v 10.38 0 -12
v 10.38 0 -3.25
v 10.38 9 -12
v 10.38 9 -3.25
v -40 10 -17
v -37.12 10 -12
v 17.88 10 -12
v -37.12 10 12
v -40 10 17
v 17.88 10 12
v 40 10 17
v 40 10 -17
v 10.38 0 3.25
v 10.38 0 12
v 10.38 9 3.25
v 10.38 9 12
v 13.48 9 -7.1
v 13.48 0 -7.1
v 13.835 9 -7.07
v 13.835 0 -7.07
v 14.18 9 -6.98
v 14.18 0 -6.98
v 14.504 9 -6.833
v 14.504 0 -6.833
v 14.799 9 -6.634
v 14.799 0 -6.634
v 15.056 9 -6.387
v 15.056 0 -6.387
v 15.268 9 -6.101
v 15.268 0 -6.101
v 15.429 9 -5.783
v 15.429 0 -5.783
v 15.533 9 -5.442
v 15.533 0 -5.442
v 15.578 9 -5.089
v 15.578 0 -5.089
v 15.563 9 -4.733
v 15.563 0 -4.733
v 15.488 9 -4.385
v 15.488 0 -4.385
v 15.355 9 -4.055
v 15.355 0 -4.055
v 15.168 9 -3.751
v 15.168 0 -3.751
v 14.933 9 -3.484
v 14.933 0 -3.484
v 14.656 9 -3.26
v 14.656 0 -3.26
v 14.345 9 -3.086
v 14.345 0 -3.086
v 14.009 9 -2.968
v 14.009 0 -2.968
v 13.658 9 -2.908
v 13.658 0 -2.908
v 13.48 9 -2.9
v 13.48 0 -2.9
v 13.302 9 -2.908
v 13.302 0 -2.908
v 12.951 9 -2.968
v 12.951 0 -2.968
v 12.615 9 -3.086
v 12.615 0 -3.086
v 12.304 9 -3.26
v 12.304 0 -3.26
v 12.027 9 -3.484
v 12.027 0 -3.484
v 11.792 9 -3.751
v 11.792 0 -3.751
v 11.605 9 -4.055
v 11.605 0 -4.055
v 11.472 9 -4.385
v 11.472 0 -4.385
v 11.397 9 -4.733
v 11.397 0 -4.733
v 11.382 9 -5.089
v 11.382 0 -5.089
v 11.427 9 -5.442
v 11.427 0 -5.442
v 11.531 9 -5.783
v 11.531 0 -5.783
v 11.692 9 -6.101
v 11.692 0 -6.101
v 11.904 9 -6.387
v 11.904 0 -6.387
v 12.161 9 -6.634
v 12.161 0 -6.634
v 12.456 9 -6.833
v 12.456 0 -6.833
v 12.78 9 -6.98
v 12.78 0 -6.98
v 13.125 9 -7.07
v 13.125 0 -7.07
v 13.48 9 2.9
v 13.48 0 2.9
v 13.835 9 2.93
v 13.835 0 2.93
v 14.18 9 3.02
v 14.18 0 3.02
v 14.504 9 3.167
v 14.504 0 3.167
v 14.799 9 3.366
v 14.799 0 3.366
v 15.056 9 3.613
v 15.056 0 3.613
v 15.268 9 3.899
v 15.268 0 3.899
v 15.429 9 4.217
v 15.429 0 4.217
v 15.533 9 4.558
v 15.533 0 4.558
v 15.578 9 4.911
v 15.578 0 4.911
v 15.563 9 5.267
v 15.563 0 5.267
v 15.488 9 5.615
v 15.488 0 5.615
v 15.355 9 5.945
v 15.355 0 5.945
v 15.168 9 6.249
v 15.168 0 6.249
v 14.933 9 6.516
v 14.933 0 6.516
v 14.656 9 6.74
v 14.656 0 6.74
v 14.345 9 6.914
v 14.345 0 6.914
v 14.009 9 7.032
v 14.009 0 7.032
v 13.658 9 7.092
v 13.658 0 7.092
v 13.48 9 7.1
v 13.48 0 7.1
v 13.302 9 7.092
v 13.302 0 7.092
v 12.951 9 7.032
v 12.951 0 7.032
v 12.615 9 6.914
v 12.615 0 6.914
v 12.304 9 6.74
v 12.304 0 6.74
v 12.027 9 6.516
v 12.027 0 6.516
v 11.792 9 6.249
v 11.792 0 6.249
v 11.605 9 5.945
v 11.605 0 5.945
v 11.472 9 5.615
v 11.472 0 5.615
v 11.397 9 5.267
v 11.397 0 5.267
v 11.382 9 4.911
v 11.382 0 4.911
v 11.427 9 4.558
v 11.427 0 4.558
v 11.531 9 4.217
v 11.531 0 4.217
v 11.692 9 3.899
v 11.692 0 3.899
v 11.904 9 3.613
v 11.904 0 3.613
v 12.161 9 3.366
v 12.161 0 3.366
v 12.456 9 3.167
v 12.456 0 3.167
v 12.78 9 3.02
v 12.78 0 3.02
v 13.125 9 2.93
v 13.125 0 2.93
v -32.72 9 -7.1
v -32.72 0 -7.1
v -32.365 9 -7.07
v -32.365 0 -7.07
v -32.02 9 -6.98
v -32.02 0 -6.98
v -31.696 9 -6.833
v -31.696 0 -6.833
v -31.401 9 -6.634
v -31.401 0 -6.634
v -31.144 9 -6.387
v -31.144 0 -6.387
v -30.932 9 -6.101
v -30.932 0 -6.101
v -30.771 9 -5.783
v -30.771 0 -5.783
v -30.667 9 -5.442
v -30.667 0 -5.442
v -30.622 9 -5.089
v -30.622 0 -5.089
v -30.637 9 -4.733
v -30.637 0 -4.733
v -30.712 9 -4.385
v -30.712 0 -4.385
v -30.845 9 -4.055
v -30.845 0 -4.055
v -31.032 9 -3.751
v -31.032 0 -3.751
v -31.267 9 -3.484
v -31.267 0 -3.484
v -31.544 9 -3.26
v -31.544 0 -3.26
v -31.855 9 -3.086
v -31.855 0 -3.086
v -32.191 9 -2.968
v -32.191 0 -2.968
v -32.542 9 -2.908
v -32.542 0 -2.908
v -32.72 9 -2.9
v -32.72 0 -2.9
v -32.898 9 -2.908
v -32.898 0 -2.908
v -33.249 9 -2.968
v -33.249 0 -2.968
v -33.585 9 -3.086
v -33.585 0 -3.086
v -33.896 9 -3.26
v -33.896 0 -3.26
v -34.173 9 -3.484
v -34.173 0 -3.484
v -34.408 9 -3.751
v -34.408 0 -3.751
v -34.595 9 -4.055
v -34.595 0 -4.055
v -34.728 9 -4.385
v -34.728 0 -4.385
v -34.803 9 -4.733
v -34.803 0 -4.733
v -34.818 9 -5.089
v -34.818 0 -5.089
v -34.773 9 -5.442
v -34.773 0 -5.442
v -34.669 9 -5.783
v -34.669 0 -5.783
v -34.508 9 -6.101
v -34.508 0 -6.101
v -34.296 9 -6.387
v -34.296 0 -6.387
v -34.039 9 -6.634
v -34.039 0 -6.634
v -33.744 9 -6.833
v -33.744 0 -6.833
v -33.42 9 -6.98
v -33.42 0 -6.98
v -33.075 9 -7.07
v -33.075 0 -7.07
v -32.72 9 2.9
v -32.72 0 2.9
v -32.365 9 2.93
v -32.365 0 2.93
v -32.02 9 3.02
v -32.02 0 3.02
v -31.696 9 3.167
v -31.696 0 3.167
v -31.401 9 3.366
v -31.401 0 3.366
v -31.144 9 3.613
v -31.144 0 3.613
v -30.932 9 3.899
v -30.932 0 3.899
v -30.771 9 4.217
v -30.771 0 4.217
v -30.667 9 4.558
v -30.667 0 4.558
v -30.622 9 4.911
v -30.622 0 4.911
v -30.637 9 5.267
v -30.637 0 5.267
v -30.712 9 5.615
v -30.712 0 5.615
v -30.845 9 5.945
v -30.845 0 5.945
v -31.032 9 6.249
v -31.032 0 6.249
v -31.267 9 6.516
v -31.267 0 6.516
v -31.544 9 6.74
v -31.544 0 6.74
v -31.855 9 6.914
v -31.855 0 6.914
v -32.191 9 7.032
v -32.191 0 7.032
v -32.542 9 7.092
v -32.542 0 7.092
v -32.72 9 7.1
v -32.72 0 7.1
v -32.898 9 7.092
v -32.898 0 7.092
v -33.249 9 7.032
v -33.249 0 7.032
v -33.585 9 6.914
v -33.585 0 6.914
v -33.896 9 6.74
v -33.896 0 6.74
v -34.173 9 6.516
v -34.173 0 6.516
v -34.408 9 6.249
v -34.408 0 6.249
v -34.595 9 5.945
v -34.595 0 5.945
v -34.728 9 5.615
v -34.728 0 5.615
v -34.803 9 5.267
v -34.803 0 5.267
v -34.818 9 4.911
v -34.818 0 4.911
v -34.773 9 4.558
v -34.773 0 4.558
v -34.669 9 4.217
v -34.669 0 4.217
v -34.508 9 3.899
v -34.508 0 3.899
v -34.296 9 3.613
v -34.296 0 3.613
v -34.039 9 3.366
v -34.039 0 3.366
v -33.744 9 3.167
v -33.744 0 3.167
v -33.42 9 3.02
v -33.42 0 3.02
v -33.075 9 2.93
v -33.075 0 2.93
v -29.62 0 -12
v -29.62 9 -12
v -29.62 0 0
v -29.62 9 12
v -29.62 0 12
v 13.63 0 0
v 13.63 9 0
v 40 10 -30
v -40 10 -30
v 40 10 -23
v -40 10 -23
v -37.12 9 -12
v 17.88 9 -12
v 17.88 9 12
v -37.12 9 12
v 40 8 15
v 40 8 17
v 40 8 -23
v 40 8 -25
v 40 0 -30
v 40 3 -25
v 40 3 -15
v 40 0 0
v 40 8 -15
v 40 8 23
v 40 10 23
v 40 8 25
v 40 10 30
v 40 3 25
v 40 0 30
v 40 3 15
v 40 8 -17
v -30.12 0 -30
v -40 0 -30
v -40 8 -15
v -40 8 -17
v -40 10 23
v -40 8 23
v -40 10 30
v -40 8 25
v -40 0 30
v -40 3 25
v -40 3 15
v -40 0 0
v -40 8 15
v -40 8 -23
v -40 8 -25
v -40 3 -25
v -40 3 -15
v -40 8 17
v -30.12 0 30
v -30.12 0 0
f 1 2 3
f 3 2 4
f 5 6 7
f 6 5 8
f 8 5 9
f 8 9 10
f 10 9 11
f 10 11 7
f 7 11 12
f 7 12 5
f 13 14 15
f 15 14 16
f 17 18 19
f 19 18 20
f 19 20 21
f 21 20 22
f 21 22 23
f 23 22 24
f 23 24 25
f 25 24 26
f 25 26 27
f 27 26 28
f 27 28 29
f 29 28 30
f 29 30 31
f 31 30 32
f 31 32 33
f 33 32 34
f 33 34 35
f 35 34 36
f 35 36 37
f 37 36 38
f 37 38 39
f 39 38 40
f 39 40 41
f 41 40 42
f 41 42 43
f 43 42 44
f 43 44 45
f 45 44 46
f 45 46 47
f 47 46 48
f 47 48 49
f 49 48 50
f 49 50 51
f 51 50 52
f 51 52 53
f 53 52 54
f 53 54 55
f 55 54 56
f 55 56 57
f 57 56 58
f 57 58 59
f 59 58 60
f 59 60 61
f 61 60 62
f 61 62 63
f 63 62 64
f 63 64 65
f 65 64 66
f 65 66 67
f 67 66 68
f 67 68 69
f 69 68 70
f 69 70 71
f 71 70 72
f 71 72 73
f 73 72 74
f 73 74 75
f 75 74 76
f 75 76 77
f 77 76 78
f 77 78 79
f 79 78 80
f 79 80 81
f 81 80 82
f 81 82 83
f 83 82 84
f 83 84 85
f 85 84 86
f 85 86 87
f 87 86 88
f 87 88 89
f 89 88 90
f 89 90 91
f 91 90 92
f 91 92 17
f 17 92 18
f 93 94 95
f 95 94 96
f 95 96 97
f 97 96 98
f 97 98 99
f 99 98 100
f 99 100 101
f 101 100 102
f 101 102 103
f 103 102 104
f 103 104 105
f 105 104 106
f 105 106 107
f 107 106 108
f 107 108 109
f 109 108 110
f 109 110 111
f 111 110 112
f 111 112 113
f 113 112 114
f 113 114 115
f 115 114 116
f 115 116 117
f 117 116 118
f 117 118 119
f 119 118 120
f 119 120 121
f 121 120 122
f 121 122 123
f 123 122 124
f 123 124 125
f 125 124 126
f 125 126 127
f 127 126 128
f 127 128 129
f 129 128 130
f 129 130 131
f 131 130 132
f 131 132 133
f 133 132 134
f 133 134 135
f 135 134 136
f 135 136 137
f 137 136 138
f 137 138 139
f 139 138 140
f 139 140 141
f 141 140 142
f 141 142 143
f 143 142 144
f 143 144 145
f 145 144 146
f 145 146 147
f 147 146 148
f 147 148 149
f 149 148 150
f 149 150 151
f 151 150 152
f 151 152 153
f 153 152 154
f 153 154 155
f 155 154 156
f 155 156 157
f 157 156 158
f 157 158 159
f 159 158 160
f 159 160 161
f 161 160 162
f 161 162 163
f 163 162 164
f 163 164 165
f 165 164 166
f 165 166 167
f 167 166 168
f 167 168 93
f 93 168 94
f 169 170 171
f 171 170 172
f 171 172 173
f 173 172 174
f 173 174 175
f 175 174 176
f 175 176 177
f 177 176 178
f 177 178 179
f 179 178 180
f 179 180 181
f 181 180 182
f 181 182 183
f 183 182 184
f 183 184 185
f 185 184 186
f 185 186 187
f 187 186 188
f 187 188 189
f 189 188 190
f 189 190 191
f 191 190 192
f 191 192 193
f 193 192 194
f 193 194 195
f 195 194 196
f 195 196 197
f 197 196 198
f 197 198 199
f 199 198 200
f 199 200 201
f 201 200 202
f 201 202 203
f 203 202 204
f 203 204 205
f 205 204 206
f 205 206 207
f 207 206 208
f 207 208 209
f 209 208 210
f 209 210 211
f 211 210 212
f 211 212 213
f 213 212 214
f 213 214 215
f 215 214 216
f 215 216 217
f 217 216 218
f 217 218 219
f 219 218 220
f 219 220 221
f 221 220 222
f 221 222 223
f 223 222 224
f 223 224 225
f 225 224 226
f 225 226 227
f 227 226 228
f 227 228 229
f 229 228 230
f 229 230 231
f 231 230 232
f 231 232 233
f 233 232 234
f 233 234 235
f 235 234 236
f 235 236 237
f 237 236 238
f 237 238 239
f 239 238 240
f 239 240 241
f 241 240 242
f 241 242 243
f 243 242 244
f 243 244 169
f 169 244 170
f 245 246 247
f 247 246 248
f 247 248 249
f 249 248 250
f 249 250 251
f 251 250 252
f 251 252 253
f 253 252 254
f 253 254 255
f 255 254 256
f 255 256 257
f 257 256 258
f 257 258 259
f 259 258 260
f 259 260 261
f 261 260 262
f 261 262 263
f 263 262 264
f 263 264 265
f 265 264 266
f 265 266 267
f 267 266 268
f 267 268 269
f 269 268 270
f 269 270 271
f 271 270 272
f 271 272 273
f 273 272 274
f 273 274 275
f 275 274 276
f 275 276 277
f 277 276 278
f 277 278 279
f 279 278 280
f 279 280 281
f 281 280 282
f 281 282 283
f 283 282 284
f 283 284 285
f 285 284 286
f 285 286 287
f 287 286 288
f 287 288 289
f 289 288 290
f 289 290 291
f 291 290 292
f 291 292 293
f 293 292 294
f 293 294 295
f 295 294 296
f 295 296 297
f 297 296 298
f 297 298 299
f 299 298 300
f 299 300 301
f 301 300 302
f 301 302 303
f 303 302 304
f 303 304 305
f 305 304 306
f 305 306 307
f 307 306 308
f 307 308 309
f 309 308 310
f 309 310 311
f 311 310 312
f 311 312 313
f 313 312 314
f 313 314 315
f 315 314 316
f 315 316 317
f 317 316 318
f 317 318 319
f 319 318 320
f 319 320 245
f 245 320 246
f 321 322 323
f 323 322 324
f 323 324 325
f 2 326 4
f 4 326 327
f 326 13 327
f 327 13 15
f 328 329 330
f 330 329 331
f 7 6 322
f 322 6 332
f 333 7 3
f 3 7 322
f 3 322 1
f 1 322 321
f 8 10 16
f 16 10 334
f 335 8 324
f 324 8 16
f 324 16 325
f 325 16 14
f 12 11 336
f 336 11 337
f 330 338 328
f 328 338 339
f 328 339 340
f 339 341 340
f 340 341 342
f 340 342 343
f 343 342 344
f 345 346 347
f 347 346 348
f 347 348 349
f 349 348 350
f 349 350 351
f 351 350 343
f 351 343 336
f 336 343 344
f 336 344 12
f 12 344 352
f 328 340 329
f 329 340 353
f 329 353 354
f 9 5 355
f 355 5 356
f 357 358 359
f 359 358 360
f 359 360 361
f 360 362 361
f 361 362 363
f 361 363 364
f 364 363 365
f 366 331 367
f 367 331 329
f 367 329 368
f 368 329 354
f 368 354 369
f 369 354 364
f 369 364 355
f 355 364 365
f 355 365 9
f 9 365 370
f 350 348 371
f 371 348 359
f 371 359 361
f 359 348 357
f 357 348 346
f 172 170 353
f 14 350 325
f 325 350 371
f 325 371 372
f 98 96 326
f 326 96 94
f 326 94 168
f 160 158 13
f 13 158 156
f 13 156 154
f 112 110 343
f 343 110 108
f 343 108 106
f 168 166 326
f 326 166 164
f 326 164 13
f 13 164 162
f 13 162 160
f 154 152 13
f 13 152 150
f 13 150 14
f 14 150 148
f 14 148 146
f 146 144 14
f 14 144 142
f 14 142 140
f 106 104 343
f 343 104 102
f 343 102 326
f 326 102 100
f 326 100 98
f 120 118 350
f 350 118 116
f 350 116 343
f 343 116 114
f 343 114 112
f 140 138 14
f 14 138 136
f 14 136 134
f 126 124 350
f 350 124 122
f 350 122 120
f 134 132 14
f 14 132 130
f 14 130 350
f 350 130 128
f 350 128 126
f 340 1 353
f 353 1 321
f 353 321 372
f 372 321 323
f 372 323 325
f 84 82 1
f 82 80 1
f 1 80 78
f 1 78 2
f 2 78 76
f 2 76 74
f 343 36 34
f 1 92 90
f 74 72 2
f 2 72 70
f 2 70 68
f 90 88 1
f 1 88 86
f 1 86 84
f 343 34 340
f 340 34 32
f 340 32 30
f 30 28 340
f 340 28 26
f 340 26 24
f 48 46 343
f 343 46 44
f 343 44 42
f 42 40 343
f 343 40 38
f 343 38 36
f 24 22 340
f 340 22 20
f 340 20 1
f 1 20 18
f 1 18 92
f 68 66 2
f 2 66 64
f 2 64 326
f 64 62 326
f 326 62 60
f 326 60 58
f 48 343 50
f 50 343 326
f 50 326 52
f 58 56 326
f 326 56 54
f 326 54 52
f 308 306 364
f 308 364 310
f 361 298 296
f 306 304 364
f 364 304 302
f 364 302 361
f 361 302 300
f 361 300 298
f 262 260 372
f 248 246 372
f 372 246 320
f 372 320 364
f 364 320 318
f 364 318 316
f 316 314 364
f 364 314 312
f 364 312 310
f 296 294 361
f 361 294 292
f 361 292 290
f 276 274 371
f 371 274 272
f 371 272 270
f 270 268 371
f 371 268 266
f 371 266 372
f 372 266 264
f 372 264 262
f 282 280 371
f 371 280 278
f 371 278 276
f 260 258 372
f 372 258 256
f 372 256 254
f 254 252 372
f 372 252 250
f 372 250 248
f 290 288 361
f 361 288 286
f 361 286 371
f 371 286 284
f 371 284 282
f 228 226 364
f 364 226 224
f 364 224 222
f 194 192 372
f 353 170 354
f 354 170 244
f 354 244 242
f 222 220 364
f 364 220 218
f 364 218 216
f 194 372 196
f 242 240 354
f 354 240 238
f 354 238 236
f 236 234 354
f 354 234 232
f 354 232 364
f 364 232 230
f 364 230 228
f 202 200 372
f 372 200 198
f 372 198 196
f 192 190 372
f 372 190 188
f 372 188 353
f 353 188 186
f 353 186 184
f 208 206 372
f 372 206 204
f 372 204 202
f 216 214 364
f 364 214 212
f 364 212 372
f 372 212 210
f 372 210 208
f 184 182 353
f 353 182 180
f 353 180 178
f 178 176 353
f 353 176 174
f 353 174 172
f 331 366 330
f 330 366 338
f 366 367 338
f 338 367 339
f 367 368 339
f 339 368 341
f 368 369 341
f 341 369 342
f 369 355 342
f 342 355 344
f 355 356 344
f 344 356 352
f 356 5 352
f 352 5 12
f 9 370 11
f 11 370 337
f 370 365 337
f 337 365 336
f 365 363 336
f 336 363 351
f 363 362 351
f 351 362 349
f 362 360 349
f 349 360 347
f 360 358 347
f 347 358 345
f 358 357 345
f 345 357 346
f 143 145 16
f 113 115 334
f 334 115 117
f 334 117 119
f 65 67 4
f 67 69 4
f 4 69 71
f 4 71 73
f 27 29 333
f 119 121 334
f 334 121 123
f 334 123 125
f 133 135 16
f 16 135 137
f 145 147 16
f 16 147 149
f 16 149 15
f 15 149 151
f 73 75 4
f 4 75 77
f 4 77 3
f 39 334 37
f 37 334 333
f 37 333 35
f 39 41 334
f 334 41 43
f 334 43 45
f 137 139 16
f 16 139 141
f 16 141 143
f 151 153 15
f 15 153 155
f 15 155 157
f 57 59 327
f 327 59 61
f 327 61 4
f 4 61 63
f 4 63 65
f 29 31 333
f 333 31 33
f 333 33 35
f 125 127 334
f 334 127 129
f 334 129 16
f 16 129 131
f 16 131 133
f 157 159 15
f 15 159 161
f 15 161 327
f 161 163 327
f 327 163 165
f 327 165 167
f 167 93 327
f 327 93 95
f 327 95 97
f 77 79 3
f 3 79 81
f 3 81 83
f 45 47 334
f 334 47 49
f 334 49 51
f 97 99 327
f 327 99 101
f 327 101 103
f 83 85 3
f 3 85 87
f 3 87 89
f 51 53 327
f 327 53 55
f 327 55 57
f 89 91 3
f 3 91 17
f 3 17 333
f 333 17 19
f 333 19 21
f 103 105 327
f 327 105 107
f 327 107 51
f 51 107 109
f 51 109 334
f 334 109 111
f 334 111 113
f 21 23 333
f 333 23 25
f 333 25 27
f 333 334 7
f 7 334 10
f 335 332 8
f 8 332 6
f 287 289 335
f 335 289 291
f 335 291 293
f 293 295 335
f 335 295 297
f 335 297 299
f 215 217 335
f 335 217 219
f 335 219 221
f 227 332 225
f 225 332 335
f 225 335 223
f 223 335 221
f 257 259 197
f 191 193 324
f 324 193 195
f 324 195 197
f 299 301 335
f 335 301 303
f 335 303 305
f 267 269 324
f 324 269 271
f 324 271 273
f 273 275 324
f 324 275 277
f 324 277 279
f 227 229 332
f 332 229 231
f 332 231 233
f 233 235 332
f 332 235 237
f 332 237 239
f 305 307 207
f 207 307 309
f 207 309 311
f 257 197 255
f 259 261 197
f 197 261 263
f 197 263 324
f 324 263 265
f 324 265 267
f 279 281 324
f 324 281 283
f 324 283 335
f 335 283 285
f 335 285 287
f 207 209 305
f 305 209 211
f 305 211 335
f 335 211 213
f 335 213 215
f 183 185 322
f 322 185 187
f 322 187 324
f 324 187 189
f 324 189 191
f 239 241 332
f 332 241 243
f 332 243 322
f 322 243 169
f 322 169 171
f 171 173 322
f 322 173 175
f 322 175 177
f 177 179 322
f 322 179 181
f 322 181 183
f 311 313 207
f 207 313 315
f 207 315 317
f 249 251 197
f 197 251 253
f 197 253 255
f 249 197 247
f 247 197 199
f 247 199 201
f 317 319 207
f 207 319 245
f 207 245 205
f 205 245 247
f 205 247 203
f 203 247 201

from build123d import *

# Parameters (mm, degrees)
SKETCH_1_W          = 80
SKETCH_1_H          = 60
SKETCH_1_R          = 2.1
SKETCH_1_W_2        = 40
SKETCH_1_H_2        = 24
EXTRUDE_1_DEPTH     = 10
CUT_EXTRUDE_1_DEPTH = 80
CUT_EXTRUDE_2_DEPTH = 80
SKETCH_7_W          = 55
SKETCH_7_H          = 24
CUT_EXTRUDE_3_DEPTH = 1


with BuildPart() as part:
    # 草圖1 → 填料-伸長1 (new body)
    with BuildSketch(Plane(origin=(0, 0, 0), x_dir=(1, 0, 0), z_dir=(0, 1, 0))):
        Rectangle(SKETCH_1_W, SKETCH_1_H)
        with Locations(Location((-32.72, -5, 0), (0, 0, 270))):
            Circle(SKETCH_1_R, mode=Mode.SUBTRACT)
        with Locations(Location((-32.72, 5, 0), (0, 0, 270))):
            Circle(SKETCH_1_R, mode=Mode.SUBTRACT)
        with Locations(Location((13.48, -5, 0), (0, 0, 270))):
            Circle(SKETCH_1_R, mode=Mode.SUBTRACT)
        with Locations(Location((13.48, 5, 0), (0, 0, 270))):
            Circle(SKETCH_1_R, mode=Mode.SUBTRACT)
        with Locations((-9.62, 0)):
            Rectangle(SKETCH_1_W_2, SKETCH_1_H_2, mode=Mode.SUBTRACT)
    extrude(amount=EXTRUDE_1_DEPTH)

    # 草圖4 → 除料-伸長1 (cut)
    with BuildSketch(Plane(origin=(40, 0, 0), x_dir=(0, 0, -1), z_dir=(1, 0, 0))):
        Polygon((-23, 10), (-23, 8), (-25, 8), (-25, 3), (-15, 3), (-15, 8), (-17, 8), (-17, 10), align=None)
        Polygon((17, 10), (17, 8), (15, 8), (15, 3), (25, 3), (25, 8), (23, 8), (23, 10), align=None)
    extrude(amount=-CUT_EXTRUDE_1_DEPTH, mode=Mode.SUBTRACT)

    # 草圖5 → 除料-伸長2 (cut)
    with BuildSketch(Plane(origin=(0, 10, 0), x_dir=(1, 0, 0), z_dir=(0, 1, 0))):
        Polygon((10.38, 3.25), (13.63, 0), (10.38, -3.25), align=None)
    extrude(amount=-CUT_EXTRUDE_2_DEPTH, mode=Mode.SUBTRACT)

    # 草圖7 → 除料-伸長3 (cut)
    with BuildSketch(Plane(origin=(0, 10, 0), x_dir=(1, 0, 0), z_dir=(0, 1, 0))):
        with Locations((-9.62, 0)):
            Rectangle(SKETCH_7_W, SKETCH_7_H)
    extrude(amount=-CUT_EXTRUDE_3_DEPTH, mode=Mode.SUBTRACT)


solid = part.part
